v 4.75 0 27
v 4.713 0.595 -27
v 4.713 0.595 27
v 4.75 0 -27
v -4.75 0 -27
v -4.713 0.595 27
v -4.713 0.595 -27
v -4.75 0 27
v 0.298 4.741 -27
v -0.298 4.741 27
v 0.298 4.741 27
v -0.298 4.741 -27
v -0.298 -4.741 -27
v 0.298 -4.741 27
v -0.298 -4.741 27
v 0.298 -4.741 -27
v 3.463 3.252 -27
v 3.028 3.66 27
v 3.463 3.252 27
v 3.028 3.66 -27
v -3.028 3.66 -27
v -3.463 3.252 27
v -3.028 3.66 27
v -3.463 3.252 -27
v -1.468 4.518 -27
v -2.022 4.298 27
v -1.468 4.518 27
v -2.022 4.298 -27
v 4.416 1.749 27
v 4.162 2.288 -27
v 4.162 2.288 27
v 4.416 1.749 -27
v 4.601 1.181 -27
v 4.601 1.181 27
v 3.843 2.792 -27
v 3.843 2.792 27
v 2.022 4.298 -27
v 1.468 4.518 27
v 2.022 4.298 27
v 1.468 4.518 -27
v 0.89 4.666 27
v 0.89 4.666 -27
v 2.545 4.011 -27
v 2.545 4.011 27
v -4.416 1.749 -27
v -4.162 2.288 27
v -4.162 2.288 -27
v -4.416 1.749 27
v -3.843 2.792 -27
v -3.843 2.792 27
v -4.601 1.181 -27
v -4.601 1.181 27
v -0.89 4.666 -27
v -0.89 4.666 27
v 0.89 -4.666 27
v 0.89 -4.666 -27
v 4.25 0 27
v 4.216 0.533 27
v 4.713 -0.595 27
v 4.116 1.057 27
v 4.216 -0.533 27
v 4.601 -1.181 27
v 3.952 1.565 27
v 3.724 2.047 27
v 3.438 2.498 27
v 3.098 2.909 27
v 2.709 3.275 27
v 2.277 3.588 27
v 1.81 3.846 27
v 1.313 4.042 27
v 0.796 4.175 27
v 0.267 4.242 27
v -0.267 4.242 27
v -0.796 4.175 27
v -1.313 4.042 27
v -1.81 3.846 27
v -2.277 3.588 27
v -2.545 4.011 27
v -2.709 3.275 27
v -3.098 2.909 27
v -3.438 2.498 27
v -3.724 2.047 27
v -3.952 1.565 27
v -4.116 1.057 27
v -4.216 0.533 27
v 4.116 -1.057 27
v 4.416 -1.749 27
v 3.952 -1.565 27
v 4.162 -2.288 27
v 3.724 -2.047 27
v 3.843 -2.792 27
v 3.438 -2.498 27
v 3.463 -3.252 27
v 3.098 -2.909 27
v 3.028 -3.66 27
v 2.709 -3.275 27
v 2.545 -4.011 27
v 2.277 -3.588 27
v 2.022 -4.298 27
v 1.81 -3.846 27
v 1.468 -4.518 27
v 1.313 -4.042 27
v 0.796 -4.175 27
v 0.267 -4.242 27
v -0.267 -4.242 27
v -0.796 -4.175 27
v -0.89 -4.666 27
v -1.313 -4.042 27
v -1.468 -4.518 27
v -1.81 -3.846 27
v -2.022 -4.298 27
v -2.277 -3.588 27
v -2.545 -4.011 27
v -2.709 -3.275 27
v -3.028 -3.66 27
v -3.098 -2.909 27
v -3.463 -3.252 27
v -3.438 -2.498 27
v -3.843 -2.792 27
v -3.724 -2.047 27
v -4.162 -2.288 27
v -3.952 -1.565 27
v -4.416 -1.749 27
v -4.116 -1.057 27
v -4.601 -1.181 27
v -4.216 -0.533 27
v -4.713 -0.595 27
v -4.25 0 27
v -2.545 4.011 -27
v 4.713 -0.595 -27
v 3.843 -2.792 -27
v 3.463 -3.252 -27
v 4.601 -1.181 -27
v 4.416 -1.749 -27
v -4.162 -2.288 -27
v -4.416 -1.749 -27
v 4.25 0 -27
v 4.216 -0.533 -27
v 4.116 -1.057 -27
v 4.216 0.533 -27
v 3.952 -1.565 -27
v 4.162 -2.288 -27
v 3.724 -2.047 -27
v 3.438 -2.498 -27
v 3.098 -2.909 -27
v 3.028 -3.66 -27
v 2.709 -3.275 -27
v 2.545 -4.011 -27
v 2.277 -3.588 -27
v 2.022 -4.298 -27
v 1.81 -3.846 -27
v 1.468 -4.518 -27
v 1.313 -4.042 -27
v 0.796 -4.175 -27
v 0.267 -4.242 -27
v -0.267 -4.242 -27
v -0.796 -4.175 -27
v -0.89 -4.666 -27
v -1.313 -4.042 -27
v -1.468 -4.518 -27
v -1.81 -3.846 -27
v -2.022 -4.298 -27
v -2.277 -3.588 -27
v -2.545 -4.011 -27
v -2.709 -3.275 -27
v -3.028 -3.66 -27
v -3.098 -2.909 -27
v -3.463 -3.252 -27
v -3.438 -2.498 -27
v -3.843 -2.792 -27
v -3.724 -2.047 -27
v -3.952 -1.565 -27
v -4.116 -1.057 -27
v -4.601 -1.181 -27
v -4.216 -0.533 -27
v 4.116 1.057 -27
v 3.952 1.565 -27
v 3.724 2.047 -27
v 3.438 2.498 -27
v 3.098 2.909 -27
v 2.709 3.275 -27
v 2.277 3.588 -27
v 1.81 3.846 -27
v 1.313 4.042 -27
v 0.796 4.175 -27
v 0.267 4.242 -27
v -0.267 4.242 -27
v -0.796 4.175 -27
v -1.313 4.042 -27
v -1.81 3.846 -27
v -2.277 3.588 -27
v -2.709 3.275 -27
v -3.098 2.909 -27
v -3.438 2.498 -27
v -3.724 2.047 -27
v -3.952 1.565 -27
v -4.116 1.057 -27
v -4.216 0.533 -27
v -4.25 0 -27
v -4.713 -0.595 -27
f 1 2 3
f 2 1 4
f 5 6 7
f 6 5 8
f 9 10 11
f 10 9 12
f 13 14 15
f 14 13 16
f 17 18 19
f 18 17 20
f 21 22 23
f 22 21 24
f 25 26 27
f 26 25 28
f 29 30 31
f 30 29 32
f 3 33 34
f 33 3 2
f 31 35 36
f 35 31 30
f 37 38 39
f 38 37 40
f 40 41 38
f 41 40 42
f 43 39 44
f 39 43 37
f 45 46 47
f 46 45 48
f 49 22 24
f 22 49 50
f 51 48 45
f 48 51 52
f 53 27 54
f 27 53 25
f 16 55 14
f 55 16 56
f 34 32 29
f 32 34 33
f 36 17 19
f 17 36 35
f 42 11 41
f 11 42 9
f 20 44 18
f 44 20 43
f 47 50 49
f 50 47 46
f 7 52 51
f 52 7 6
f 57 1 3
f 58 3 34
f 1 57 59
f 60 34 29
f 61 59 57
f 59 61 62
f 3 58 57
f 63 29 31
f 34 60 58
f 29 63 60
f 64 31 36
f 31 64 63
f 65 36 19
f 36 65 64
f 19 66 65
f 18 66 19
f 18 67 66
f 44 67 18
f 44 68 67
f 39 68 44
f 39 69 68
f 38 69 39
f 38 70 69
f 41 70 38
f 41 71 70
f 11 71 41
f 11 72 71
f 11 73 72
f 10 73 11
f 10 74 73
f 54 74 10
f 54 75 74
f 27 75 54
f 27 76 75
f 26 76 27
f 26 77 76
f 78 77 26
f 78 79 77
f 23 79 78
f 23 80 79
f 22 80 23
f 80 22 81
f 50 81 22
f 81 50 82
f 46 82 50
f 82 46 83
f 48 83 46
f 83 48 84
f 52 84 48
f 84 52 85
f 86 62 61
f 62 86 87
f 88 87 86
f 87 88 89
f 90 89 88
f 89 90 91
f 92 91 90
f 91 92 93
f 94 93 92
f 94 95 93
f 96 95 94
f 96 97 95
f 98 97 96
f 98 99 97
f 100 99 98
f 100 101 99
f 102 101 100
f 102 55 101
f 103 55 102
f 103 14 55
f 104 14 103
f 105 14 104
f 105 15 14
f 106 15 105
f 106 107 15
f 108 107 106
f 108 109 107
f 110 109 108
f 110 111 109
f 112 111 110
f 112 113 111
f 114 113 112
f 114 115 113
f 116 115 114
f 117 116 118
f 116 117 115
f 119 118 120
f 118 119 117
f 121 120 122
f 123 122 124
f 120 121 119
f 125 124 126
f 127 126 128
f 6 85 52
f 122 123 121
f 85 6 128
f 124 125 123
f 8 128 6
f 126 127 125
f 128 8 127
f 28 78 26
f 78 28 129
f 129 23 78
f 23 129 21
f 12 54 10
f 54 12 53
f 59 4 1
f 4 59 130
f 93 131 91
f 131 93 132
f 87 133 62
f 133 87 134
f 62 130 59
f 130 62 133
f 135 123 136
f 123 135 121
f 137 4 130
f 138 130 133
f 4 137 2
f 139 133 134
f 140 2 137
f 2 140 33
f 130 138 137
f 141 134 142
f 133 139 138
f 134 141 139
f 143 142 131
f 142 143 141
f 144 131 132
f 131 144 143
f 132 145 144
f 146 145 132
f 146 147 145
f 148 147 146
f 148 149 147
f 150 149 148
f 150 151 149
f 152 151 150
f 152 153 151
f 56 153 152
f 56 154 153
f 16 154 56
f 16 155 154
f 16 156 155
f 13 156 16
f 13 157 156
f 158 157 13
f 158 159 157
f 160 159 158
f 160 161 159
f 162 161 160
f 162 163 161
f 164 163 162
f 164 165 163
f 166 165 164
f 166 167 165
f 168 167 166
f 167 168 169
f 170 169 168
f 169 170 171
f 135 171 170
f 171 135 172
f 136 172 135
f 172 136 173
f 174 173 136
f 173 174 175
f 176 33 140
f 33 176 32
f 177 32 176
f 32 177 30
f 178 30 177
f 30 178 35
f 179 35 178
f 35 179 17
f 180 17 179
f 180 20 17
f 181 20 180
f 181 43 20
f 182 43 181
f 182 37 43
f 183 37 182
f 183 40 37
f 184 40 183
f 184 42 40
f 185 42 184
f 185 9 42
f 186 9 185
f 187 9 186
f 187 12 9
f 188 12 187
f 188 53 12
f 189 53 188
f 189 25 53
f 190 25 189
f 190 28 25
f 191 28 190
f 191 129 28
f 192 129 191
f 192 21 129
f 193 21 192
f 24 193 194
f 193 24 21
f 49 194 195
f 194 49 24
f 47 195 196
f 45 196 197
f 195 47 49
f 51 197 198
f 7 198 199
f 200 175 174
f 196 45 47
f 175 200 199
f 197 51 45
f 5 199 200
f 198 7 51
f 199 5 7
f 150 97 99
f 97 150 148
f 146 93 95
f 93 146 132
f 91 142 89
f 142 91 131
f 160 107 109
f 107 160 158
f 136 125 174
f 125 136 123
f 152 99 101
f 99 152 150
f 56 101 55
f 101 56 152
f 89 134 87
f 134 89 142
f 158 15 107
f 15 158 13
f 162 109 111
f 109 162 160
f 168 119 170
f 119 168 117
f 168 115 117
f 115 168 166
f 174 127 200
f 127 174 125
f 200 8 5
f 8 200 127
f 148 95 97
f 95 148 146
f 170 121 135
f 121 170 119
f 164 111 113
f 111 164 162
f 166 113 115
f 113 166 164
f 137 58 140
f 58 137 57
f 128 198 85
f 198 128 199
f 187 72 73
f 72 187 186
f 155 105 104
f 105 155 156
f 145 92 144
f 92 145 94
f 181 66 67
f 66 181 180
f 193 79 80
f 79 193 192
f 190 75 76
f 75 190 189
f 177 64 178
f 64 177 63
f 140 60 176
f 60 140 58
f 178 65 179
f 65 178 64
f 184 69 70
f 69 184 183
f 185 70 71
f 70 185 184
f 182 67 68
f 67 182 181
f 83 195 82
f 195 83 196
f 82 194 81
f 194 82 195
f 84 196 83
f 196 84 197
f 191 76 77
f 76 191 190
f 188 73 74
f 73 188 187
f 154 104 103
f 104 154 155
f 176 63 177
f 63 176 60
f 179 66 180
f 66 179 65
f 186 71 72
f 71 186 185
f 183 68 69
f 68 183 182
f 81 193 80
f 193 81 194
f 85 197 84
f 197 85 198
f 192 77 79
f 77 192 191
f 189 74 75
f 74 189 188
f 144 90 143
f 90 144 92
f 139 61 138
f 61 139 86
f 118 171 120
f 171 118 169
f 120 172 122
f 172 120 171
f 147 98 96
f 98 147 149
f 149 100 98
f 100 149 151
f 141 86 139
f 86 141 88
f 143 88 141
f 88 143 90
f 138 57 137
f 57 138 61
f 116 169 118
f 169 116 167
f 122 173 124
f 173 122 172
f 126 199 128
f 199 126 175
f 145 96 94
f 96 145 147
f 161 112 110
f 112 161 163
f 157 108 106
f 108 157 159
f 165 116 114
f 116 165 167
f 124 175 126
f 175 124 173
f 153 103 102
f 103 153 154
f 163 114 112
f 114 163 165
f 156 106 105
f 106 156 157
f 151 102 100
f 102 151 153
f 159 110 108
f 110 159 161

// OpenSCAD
$fn = 50;


difference() {
	union() {
		translate(v = [0, 0, -27.0000000000]) {
			cylinder(h = 54, r = 4.7500000000);
		}
	}
	union() {
		translate(v = [0, 0, -100.0000000000]) {
			cylinder(h = 200, r = 4.2500000000);
		}
	}
}
